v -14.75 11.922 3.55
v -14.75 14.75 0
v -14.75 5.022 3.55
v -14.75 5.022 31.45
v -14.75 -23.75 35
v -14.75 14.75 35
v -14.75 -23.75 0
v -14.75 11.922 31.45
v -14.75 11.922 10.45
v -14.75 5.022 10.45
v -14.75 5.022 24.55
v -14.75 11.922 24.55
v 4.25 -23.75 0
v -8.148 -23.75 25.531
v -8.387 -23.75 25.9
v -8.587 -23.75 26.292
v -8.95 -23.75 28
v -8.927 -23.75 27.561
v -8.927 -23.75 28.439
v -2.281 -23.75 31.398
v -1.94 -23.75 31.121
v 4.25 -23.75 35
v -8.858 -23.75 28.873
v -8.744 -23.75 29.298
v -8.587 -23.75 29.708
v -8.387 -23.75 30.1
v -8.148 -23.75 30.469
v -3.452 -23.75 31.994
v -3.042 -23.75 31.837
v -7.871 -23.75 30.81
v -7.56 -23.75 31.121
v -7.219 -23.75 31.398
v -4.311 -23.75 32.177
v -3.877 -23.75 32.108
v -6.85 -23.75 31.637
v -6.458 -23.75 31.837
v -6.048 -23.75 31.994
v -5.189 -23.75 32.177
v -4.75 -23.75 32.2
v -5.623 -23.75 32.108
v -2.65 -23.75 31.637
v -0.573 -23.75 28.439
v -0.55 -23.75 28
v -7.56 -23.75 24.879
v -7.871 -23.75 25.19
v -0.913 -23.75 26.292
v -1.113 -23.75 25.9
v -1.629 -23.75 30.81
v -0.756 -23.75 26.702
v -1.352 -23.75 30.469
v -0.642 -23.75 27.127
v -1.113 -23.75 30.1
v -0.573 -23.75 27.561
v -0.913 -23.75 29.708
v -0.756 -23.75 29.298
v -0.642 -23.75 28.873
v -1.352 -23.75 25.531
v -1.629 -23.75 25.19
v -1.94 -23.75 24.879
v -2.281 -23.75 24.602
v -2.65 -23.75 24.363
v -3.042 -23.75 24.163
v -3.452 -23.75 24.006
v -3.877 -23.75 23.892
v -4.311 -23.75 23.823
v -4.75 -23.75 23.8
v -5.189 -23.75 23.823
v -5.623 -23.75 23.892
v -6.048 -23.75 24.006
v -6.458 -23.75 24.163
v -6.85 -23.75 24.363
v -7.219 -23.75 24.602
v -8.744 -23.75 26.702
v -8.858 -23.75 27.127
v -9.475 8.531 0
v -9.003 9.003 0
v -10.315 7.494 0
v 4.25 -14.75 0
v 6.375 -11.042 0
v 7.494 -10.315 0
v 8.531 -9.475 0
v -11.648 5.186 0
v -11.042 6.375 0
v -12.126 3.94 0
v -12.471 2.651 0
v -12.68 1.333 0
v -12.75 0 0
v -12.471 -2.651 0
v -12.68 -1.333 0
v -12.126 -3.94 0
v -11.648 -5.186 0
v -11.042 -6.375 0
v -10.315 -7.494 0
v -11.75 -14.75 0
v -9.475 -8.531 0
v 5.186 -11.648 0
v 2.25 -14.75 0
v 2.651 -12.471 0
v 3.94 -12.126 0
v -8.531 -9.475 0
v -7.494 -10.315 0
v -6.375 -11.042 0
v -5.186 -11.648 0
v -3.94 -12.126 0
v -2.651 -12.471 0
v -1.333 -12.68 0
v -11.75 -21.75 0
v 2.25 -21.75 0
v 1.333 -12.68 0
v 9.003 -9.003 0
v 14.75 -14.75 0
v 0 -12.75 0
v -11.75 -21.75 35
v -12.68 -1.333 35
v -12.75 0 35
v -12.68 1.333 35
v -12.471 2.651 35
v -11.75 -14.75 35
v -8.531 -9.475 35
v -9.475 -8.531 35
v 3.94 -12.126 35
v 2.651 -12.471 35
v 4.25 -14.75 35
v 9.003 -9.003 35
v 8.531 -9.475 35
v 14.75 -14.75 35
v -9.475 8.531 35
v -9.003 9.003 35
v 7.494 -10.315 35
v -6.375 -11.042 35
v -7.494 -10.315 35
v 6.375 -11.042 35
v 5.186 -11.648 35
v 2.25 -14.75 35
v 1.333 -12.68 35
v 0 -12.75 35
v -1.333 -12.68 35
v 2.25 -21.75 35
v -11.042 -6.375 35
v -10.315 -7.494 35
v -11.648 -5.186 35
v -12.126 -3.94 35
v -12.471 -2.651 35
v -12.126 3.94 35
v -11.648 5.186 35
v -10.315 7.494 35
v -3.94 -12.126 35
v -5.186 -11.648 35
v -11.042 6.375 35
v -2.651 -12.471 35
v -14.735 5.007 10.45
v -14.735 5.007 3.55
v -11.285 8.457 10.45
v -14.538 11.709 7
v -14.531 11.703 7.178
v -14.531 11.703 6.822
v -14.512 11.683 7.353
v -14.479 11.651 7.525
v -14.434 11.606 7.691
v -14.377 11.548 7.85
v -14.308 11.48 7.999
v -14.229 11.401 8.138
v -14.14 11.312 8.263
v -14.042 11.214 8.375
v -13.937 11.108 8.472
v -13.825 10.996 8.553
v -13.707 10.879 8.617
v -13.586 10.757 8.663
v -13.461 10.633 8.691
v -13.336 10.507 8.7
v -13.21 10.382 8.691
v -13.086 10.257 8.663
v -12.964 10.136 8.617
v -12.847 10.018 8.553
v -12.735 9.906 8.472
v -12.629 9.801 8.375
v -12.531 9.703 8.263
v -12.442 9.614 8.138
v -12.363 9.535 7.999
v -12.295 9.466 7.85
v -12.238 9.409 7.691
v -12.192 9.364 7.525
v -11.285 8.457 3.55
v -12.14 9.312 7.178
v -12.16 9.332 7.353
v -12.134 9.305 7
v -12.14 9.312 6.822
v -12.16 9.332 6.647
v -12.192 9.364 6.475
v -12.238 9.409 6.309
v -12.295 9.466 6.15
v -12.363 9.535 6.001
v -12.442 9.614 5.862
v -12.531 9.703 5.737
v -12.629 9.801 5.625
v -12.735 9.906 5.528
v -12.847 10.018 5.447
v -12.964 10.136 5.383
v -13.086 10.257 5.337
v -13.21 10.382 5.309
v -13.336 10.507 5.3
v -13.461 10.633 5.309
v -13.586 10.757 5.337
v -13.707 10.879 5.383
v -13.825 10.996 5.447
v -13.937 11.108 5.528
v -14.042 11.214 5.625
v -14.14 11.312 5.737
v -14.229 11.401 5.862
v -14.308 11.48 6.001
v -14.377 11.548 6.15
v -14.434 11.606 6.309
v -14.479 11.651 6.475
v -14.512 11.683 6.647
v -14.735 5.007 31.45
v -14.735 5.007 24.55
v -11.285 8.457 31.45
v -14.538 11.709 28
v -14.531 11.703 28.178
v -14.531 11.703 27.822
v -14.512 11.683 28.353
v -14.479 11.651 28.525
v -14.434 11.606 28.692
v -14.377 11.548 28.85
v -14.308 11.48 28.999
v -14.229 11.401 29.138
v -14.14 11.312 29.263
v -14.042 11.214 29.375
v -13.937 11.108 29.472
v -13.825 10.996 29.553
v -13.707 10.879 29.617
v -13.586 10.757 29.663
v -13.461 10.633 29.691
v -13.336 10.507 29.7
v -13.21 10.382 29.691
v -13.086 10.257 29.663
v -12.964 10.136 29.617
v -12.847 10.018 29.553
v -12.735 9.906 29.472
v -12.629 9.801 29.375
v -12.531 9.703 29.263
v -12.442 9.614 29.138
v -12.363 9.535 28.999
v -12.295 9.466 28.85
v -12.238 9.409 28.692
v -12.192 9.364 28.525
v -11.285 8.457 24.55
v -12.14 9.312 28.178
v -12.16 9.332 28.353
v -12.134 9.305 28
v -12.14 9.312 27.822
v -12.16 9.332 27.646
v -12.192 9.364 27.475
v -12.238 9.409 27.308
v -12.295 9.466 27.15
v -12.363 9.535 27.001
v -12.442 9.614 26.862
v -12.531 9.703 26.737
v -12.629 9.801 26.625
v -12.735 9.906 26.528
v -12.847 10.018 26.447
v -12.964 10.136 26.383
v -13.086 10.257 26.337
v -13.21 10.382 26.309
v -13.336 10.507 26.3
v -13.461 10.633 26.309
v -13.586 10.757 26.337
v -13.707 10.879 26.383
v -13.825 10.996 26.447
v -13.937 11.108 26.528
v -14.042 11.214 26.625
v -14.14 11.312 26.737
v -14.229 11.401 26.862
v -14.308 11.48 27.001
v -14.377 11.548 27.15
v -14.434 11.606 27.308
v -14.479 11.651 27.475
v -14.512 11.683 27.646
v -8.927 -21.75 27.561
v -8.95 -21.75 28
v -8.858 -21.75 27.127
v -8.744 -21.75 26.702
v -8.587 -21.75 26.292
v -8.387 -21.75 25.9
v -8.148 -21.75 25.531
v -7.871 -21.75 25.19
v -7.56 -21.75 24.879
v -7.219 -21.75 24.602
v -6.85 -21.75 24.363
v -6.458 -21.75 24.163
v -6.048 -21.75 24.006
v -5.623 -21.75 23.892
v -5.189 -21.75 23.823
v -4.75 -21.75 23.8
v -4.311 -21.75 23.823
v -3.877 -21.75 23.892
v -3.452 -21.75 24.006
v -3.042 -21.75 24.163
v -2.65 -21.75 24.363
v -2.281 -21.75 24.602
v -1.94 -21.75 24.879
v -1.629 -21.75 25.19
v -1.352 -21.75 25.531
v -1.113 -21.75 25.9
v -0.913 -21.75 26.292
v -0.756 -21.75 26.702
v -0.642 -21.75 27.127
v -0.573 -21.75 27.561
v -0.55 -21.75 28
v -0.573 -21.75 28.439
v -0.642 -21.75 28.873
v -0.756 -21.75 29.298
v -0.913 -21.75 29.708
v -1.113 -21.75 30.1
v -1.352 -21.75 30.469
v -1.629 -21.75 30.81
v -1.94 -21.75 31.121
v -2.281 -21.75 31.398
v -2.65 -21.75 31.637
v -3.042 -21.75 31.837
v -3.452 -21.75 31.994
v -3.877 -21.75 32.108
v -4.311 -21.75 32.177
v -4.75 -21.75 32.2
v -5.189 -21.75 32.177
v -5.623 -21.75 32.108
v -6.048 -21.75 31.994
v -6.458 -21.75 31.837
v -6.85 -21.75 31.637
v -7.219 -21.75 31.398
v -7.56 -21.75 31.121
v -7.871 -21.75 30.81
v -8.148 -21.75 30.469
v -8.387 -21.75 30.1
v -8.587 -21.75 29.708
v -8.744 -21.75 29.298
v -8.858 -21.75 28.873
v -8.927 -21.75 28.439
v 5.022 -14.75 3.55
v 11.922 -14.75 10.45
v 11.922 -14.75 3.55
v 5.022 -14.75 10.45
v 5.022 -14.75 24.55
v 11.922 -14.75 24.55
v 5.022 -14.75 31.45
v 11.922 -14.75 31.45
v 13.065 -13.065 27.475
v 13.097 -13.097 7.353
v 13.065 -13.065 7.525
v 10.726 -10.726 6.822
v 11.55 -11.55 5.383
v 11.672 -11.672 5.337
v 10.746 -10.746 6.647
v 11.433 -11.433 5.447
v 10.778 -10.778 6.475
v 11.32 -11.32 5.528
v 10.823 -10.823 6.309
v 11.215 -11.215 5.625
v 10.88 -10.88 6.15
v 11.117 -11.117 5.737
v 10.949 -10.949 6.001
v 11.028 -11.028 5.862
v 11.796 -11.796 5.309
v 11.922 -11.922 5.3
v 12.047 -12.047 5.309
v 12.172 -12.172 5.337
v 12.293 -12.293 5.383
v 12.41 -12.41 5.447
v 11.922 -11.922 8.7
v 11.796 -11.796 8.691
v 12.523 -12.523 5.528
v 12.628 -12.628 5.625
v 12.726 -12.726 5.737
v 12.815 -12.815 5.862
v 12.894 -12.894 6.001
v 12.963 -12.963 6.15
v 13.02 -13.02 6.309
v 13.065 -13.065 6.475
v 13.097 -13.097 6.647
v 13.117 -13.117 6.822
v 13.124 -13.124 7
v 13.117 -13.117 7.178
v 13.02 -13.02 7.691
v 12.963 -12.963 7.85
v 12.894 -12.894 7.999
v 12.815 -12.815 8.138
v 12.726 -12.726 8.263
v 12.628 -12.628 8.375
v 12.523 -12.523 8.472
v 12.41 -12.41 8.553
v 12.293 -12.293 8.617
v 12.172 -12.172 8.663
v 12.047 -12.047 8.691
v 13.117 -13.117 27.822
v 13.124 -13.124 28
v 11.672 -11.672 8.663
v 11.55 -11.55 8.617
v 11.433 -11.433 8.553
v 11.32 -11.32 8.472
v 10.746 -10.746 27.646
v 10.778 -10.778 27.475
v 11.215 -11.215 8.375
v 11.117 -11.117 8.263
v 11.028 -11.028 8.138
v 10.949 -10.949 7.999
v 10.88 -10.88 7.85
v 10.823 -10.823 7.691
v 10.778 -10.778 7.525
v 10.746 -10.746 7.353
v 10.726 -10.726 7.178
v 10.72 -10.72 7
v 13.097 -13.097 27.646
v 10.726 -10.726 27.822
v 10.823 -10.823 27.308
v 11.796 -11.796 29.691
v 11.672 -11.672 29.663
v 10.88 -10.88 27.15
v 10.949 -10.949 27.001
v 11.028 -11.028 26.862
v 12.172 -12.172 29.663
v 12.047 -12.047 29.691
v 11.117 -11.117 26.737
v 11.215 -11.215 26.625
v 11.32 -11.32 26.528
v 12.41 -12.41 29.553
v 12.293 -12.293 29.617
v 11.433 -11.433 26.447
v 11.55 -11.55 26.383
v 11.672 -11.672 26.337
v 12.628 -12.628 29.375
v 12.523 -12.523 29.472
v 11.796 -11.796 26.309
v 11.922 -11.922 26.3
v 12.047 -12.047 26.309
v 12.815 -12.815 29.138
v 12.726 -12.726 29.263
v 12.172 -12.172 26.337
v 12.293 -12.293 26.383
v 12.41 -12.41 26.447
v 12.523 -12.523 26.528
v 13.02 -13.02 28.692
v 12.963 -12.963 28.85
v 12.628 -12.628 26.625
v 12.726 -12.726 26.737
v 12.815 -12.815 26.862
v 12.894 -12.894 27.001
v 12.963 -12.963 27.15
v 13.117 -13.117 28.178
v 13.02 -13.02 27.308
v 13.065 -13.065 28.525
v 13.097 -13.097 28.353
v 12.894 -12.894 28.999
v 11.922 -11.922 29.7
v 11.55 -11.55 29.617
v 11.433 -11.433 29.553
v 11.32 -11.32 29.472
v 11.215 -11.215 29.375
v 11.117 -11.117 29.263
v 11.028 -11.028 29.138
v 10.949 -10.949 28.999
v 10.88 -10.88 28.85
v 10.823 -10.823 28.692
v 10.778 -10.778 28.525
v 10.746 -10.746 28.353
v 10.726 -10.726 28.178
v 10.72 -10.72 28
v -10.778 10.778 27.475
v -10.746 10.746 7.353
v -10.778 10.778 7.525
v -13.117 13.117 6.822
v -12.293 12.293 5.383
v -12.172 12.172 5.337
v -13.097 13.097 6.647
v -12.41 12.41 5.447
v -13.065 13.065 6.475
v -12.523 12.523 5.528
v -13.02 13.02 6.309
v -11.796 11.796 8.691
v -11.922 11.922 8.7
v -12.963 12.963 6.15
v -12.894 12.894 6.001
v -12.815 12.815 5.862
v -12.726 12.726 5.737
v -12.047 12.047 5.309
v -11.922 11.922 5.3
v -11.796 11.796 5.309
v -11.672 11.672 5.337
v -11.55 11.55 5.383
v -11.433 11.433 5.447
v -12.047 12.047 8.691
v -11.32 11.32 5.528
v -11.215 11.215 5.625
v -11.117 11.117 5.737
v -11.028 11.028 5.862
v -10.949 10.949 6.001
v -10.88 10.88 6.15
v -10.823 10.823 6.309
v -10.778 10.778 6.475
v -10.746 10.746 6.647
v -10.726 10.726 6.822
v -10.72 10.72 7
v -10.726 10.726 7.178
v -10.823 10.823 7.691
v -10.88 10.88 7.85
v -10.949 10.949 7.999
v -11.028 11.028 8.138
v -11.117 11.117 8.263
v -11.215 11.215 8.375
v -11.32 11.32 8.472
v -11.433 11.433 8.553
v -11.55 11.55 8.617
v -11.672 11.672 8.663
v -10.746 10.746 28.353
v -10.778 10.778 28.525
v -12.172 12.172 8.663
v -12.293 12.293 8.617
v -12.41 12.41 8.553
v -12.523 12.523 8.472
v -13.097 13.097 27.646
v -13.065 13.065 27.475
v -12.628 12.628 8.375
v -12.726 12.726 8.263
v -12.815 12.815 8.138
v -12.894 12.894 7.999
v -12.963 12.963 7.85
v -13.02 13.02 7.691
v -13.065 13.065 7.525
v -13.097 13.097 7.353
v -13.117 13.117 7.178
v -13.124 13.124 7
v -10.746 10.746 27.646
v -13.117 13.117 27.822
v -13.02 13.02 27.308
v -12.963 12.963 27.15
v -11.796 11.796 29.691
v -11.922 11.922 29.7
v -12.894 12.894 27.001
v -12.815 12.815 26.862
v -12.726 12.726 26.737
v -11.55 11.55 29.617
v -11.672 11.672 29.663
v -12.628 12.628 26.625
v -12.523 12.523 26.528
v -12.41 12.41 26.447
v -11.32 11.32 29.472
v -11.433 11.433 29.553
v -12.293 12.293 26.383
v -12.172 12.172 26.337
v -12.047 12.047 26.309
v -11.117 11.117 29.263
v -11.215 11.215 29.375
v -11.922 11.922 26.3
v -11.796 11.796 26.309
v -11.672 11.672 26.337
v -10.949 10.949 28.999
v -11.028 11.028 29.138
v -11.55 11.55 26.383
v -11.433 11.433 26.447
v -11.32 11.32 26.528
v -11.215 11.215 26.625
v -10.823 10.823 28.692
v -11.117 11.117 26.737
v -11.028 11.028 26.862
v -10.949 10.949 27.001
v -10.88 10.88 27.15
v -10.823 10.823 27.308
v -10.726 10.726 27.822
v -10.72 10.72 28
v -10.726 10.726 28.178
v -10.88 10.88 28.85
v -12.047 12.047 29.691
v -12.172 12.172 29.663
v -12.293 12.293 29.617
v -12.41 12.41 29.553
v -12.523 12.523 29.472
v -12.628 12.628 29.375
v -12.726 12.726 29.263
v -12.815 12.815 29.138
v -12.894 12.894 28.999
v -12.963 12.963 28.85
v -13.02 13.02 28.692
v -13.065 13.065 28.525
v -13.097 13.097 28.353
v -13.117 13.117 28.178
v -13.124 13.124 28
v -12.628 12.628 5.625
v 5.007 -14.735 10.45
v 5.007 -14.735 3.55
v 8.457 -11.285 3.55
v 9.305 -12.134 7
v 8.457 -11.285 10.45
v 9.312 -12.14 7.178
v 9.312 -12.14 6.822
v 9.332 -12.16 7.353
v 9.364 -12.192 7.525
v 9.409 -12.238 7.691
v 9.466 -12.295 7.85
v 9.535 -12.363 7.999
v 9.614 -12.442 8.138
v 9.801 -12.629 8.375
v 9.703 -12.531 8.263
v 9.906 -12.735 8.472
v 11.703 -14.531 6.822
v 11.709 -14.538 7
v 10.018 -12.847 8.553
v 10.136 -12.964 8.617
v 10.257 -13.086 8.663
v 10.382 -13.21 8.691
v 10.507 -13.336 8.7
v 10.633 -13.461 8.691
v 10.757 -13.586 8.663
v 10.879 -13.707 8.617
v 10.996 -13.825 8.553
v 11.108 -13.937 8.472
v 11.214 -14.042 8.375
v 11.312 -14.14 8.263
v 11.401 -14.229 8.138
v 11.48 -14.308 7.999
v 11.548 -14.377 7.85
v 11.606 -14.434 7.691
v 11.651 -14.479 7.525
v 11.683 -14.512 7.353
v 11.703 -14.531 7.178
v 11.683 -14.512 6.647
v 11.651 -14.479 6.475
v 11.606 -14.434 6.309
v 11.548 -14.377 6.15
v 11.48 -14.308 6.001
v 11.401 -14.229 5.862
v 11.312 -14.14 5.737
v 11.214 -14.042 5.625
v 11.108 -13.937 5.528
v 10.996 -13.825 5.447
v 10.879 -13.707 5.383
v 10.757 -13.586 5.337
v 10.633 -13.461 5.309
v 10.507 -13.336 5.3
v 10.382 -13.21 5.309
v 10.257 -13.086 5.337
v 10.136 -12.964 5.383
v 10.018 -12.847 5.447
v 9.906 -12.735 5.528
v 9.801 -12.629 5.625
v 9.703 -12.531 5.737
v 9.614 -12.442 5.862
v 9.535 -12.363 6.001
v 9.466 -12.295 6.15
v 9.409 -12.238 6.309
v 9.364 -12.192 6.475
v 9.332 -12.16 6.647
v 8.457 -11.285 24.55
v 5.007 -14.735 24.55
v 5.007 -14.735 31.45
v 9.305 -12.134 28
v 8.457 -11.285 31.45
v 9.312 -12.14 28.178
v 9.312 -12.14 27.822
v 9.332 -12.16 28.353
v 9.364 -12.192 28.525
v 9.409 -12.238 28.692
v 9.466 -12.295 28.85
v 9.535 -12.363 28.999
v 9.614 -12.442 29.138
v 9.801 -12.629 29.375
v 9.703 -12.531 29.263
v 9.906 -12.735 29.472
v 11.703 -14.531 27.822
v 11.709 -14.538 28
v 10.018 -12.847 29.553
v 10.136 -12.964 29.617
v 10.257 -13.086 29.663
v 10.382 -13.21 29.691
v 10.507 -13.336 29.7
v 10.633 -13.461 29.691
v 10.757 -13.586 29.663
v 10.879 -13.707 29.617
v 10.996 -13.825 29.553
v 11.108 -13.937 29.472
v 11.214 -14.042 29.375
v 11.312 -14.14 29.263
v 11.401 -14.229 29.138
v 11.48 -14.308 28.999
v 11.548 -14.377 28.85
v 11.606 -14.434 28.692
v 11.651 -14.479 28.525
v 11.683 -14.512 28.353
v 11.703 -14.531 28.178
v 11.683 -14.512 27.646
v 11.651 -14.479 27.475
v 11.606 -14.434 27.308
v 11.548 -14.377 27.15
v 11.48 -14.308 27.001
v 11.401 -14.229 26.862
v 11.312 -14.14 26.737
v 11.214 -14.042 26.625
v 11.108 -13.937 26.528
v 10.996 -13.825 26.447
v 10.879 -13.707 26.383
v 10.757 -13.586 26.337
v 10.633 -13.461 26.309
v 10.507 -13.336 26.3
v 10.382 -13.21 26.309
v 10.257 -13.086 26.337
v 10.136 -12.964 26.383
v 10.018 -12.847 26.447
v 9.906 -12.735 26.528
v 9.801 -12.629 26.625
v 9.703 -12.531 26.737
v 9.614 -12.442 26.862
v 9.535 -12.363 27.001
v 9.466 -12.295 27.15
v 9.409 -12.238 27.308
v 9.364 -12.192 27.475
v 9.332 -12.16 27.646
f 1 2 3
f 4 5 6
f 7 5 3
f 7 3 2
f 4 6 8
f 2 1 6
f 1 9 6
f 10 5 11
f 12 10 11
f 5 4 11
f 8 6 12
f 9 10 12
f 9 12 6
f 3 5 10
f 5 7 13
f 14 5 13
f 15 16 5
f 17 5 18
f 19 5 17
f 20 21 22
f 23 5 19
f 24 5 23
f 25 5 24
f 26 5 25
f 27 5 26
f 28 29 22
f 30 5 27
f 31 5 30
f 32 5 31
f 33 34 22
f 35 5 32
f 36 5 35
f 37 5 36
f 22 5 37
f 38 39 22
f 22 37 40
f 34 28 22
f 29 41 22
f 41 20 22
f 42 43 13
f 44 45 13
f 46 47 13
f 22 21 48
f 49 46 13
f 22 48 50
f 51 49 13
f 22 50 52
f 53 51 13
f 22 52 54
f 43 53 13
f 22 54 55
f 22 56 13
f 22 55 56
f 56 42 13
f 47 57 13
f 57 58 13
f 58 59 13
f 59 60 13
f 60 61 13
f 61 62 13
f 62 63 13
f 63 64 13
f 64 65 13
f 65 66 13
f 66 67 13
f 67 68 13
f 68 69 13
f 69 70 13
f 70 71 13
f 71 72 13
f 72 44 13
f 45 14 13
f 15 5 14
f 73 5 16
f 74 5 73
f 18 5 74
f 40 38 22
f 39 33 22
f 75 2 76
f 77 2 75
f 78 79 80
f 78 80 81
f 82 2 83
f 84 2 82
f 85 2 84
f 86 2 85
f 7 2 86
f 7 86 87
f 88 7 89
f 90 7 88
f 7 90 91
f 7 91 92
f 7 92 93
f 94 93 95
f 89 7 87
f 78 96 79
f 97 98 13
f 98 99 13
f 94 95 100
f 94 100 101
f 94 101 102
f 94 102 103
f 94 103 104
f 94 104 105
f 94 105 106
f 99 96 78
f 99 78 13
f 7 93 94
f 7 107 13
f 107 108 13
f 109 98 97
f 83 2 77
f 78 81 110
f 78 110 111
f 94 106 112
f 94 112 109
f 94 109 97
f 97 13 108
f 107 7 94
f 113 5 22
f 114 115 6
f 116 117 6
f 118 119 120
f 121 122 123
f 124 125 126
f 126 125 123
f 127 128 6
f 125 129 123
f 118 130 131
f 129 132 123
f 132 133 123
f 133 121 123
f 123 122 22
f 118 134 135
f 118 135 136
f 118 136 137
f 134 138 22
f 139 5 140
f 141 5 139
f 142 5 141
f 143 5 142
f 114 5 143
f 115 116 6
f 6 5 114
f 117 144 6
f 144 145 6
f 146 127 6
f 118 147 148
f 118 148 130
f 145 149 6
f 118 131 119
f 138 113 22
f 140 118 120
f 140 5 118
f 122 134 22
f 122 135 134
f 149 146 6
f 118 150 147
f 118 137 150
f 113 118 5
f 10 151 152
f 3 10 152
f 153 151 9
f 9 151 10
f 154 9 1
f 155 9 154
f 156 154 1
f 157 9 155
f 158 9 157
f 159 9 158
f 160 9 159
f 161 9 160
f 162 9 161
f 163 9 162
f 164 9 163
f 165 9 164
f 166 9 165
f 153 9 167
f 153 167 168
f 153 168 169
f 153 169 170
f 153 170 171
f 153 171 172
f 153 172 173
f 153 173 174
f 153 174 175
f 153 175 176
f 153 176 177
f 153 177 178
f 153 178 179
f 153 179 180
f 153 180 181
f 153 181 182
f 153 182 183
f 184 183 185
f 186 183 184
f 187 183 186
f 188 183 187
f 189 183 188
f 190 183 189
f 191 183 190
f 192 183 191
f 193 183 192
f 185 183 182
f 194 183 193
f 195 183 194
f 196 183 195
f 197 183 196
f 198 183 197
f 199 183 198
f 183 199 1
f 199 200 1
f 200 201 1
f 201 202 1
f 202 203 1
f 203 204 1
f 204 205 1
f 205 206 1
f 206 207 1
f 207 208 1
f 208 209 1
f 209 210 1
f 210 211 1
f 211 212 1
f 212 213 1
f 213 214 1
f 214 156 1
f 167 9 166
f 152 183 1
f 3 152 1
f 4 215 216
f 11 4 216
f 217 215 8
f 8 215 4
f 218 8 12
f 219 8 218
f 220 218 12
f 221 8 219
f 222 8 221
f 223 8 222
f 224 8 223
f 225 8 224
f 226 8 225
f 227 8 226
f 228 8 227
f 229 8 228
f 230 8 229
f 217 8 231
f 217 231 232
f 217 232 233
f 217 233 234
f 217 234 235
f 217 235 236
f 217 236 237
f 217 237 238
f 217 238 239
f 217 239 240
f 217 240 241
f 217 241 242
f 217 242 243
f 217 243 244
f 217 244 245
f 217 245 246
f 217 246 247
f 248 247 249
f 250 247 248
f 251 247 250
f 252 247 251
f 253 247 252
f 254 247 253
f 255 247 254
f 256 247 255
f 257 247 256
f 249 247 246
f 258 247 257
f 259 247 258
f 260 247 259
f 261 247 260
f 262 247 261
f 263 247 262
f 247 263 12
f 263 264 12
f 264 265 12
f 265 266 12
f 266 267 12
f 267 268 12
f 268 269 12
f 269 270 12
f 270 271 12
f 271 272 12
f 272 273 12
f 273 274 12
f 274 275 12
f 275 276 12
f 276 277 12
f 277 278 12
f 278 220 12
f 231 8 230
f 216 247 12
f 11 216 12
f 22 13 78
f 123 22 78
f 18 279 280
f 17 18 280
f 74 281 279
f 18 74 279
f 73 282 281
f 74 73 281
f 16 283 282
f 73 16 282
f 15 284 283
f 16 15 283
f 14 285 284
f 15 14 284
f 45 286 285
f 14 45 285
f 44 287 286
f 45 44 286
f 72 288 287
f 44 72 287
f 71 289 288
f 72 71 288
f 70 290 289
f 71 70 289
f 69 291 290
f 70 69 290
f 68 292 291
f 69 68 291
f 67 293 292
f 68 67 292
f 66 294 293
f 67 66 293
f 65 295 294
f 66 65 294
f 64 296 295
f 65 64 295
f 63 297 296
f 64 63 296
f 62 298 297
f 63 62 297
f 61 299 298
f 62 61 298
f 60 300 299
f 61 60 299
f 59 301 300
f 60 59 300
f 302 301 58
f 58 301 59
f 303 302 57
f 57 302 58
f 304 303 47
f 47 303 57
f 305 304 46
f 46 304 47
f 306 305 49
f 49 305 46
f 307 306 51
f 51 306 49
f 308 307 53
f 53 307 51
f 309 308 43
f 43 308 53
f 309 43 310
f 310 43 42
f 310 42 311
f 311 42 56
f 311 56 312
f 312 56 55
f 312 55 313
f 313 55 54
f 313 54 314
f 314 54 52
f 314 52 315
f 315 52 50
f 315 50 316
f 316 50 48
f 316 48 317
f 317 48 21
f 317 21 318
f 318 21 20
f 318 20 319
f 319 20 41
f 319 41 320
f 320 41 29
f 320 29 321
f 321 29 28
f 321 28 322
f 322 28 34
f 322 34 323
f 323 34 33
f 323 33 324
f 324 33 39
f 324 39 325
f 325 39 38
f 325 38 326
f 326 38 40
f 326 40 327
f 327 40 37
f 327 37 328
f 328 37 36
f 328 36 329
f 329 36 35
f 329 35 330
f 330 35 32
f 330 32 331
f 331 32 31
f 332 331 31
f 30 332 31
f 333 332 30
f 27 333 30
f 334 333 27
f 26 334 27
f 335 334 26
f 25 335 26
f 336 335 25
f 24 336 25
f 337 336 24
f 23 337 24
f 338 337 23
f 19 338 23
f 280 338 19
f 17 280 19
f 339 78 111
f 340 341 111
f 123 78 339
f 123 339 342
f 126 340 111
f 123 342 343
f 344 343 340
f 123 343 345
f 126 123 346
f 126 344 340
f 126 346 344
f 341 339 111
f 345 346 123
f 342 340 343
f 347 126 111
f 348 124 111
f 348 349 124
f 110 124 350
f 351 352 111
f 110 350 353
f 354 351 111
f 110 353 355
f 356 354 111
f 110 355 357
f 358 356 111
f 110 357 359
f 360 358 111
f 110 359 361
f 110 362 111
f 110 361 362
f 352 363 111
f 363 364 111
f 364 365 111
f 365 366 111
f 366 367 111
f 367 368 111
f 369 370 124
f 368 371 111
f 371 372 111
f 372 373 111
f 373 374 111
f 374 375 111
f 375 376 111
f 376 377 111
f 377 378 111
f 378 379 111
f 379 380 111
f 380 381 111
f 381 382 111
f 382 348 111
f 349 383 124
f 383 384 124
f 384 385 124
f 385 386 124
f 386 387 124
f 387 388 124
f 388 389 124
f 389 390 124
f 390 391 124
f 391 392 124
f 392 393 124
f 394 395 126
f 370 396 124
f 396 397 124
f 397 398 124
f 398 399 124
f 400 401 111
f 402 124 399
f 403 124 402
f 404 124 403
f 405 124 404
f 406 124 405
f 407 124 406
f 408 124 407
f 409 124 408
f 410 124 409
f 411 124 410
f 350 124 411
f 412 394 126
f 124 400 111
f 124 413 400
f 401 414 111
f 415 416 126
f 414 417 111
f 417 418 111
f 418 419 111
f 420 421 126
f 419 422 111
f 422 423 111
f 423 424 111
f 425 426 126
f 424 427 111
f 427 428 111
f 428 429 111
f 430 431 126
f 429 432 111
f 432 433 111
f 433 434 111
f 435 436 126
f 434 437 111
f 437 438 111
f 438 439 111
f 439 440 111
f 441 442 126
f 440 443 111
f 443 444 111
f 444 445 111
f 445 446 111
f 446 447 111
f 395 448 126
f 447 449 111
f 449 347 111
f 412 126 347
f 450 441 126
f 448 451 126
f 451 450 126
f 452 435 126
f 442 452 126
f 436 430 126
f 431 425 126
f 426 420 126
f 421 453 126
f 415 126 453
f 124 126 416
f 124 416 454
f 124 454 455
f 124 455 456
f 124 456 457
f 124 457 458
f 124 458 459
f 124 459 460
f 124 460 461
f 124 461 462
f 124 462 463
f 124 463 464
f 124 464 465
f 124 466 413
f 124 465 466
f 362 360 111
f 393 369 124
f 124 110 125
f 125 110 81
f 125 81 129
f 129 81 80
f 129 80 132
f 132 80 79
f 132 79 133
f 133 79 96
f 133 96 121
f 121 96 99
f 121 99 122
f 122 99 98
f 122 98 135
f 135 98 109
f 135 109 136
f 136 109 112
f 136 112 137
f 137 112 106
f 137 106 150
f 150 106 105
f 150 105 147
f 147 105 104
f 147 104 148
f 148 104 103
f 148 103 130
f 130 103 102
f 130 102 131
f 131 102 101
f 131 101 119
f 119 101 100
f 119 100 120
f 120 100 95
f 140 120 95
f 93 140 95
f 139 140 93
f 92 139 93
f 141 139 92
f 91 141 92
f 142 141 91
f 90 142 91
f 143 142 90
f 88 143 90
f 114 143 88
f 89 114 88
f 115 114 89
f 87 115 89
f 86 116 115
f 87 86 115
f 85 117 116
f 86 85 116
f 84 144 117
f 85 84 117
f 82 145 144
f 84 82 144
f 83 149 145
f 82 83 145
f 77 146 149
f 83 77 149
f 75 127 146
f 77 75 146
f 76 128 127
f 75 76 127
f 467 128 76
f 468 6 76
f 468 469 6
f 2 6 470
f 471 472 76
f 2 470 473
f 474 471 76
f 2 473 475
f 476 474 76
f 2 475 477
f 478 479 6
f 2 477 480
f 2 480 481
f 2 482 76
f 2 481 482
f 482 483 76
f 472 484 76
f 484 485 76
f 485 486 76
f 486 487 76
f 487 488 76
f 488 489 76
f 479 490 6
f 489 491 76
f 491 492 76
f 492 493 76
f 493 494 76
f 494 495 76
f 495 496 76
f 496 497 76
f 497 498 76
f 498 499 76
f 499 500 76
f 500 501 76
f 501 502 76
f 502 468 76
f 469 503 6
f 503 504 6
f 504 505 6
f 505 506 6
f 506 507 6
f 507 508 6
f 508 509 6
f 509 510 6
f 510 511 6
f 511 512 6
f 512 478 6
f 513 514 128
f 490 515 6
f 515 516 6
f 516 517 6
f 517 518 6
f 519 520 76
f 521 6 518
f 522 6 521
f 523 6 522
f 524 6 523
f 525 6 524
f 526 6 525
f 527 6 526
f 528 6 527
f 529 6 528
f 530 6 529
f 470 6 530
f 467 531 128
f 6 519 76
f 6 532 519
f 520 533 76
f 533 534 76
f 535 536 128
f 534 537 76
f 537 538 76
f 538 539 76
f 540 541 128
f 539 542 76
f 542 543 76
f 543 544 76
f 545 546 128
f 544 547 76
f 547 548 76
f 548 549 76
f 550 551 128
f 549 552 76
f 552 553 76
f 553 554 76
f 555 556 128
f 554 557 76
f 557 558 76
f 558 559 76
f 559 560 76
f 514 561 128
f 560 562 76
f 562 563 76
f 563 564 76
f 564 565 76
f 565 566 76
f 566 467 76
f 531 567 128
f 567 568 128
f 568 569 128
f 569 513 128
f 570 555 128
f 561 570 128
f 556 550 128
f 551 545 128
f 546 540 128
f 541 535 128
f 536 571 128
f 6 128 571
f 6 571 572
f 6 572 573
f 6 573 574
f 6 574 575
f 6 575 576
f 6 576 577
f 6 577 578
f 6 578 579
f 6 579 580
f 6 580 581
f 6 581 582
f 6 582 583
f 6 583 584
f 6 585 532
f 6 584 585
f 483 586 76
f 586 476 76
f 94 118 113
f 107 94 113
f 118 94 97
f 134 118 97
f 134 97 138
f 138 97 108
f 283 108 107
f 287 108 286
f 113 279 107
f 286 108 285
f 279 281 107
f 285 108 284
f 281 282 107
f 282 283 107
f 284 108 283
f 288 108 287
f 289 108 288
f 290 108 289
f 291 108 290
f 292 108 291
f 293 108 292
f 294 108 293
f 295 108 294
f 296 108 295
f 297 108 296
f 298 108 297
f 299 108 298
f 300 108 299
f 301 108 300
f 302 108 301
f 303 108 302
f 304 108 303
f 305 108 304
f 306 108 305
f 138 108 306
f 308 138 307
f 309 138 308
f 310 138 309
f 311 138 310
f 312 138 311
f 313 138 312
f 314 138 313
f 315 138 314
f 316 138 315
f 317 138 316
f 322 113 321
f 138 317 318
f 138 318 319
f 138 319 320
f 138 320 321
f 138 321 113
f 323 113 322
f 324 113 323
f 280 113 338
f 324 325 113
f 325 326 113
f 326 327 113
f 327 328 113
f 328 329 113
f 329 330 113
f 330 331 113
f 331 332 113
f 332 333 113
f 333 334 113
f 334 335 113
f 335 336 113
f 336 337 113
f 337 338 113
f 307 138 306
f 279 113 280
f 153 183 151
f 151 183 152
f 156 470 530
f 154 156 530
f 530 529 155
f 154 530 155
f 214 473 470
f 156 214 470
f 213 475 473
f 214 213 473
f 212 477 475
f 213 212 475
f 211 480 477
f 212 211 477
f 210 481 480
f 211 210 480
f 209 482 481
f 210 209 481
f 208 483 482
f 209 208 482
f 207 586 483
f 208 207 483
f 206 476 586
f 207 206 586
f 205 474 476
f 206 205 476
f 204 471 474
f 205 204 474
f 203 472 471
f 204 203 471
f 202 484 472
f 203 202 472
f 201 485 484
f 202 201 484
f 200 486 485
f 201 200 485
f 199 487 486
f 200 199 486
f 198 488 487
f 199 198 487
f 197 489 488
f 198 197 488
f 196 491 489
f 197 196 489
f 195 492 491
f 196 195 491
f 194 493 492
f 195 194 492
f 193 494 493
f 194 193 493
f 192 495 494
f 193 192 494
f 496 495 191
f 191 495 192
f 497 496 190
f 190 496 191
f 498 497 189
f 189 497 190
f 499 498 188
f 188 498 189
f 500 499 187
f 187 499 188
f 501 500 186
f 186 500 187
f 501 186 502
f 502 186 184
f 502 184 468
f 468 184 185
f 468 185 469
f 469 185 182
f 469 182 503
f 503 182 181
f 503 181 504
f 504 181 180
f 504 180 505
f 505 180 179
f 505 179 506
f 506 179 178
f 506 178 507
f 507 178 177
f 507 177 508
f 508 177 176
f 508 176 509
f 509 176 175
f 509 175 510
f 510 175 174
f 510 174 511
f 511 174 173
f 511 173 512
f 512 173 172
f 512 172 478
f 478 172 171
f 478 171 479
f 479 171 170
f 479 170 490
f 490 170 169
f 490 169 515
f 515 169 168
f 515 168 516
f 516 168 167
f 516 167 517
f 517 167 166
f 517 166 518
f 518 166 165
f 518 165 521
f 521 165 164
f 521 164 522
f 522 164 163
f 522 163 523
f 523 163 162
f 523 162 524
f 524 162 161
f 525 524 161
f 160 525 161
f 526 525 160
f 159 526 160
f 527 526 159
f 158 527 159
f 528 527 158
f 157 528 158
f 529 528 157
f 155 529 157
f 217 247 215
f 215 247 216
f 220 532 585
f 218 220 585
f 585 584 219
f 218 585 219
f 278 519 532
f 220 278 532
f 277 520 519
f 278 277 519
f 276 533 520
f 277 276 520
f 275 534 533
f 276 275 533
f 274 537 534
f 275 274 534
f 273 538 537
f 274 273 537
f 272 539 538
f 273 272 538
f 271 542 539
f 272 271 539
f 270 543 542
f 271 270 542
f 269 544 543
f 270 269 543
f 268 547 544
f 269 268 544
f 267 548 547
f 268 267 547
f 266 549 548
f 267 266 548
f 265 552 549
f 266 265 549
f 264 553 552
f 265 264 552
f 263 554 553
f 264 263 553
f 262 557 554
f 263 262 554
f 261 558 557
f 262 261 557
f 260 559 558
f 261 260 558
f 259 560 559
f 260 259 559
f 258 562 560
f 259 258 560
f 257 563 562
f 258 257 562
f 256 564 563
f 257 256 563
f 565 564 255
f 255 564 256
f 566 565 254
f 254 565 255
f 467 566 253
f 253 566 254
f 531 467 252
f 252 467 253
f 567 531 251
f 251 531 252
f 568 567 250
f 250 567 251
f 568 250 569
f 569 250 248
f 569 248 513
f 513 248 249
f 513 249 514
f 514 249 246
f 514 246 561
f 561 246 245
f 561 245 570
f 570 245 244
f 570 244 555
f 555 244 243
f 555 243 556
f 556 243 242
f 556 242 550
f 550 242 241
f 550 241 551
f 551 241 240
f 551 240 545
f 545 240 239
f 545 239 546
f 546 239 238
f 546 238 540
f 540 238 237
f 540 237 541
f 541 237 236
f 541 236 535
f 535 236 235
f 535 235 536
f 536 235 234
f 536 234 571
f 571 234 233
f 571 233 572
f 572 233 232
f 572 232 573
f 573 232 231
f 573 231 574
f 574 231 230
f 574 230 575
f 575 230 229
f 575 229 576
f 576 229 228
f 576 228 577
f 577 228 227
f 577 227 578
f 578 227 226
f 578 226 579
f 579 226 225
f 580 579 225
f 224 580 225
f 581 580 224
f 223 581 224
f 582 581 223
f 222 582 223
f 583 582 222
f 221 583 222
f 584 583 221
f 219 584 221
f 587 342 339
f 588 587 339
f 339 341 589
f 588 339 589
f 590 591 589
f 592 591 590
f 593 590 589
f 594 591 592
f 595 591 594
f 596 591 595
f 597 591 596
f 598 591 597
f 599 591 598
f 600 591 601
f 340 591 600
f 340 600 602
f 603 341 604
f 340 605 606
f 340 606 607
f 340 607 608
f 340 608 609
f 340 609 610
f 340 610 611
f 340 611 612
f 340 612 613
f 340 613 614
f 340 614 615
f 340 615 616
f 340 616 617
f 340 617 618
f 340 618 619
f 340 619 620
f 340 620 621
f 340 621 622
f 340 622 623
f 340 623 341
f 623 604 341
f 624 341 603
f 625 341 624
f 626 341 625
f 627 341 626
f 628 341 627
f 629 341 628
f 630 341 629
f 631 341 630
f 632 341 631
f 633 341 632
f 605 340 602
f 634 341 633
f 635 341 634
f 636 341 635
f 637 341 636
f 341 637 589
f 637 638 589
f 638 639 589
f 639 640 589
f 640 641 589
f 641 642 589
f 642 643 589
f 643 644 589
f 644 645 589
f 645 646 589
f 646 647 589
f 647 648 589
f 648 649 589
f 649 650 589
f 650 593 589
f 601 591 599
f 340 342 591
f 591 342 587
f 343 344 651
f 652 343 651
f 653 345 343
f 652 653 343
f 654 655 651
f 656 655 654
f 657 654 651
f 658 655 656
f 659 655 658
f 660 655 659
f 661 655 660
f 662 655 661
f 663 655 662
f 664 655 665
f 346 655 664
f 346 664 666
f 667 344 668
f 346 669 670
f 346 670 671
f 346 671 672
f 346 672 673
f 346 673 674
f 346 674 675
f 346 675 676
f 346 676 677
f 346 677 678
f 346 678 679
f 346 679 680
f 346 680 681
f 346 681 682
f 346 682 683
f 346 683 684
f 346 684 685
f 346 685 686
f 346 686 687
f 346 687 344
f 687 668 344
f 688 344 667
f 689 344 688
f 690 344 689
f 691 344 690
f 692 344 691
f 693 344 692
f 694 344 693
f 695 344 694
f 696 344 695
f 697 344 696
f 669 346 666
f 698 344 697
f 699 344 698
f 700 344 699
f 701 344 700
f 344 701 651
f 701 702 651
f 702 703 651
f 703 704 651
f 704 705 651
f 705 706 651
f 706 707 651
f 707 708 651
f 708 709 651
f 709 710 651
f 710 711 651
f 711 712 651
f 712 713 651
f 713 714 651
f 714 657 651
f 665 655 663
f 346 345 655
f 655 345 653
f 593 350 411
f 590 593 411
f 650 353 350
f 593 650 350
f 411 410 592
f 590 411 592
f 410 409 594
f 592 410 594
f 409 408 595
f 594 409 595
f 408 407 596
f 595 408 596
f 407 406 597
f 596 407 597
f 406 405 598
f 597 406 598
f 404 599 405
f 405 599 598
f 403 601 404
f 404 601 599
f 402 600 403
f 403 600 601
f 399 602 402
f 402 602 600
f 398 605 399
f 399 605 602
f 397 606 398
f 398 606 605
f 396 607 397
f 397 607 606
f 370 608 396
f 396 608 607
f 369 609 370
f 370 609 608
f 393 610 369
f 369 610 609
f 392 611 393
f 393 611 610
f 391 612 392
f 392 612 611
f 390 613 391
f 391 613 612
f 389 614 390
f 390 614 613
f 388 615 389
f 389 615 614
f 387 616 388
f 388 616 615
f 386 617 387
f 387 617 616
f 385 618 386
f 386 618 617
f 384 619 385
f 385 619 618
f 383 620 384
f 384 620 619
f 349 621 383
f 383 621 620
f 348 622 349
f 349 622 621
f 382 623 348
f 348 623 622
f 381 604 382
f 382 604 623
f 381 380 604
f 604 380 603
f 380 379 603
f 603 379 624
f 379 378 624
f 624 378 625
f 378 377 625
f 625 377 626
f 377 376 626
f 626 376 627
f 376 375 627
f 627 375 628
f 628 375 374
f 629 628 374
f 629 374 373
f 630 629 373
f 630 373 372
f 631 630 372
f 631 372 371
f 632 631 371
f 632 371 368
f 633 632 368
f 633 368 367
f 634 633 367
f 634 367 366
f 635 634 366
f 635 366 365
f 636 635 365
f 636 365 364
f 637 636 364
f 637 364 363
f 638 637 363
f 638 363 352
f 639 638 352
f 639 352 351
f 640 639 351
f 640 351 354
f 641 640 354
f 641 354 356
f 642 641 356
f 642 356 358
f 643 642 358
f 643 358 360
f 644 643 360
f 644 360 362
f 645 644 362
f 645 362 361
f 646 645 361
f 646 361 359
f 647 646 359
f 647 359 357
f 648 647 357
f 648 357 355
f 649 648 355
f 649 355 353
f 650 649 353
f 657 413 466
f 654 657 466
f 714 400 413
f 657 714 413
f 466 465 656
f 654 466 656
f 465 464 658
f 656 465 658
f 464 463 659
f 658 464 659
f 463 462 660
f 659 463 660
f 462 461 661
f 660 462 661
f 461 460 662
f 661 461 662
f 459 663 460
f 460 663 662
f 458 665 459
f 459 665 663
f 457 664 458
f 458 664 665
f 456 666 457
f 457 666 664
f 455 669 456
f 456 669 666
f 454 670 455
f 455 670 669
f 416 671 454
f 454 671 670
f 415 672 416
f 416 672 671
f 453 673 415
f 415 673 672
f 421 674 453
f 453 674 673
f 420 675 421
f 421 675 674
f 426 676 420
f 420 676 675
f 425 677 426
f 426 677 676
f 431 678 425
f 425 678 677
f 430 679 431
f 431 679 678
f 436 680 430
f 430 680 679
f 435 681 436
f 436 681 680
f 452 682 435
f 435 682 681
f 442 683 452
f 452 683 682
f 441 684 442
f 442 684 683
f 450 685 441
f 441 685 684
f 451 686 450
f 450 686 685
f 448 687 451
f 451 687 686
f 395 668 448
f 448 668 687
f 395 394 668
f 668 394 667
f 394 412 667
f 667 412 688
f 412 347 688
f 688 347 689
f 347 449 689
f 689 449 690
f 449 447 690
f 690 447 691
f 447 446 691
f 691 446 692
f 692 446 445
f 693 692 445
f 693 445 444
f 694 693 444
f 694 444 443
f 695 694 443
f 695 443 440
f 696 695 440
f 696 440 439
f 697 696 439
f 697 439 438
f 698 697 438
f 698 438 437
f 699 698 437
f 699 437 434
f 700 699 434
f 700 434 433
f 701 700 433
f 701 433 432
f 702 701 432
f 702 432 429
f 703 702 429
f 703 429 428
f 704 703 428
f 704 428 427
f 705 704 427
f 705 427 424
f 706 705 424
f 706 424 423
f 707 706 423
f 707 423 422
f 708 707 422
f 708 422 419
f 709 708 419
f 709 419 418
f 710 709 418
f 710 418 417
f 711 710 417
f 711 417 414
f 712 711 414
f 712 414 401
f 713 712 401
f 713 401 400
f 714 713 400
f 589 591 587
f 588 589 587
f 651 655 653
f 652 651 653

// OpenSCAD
// the diameter of the center hole that this is clamping to
shelf_post_diameter=25.5;

// the extra amount added to the clamp diameter for wiggle room
clamp_diameter_extra=0;

//thickness of the clamp walls
clamp_thickness=2;

// overall height of the clamp
clamp_h=35;

// a nut trap. This is the size of the cavity
nut_trap_x=14;
nut_trap_y=7;

// distance to the center of the nut from the edge of the clamp
nut_offset=10;

// diameter of the bolt
bolt_diameter=8.4;

bolt_z_position=0.8;

// this is the nut+bolt that hold the two halves together
nut2_width=6.9;
bolt2_diameter=3.4;
bolt2_offset=4;

$fn=60;

// sample post
%translate([0,0,-25])
  cylinder(r=shelf_post_diameter/2,h=50);

clamp_diameter_o=shelf_post_diameter+clamp_diameter_extra+clamp_thickness*2;
clamp_diameter_i=shelf_post_diameter+clamp_diameter_extra;


half();
%rotate([0,0,180])
  half();

module half(){
  difference(){
    difference(){
      translate([-clamp_diameter_o/2,-clamp_diameter_o/2,0])
        base_form();
      cylinder(r=clamp_diameter_i/2, h=clamp_h);
    }
    rotate([0,0,-45])
      translate([-clamp_diameter_o*sqrt(2)/2,0,0])
        cube([clamp_diameter_o*sqrt(2),clamp_diameter_o*sqrt(2),clamp_h]);

    side_bolts(clamp_h * 0.20);
    side_bolts(clamp_h * 0.8);
  }
}

module side_bolts(z){
    // bolts to hold the two sides together
    rotate([0,0,90+45]){
      translate([clamp_diameter_o*sqrt(2)/2-nut2_width,2,z-nut2_width/2])
        cube([nut2_width,nut2_width/sqrt(2),nut2_width]);
      translate([-clamp_diameter_o*sqrt(2)/2,2,z-nut2_width/2])
        cube([nut2_width,nut2_width/sqrt(2),nut2_width]);
      translate([clamp_diameter_o*sqrt(2)/2-bolt2_offset,-1,z])
        rotate([-90,0,0])
          cylinder(r=bolt2_diameter/2,h=nut2_width/sqrt(2),$fn=60);
      translate([-clamp_diameter_o*sqrt(2)/2+bolt2_offset,-1,z])
        rotate([-90,0,0])
          cylinder(r=bolt2_diameter/2,h=nut2_width/sqrt(2),$fn=60);
    }
}

module base_form(){
  cube([clamp_diameter_o,clamp_diameter_o,clamp_h]);

    %translate([nut_offset,0,clamp_h * bolt_z_position]){
      rotate([90,0,0])
        cylinder(r=4,h=20);
     rotate([90,0,0])nut();
    }
    difference(){
     translate([nut_offset/2-clamp_thickness,-nut_trap_y,0])
       difference(){
        translate([-clamp_thickness,-clamp_thickness,0])
         cube([nut_trap_x+clamp_thickness*2,nut_trap_y+clamp_thickness,clamp_h]);
         cube([nut_trap_x,nut_trap_y,clamp_h]);

       }

    // bolt hole
    translate([nut_offset,0,clamp_h * bolt_z_position]){
      rotate([90,0,0])
        cylinder(r=bolt_diameter/2,h=20);
        }
     }

     translate([0,-nut_trap_y-clamp_thickness,0])
       cube([3,nut_trap_y+clamp_thickness,clamp_h]);
}

module nut(){
  cylinder(r=14.5/2,h=6.5,$fn=6);
 }
